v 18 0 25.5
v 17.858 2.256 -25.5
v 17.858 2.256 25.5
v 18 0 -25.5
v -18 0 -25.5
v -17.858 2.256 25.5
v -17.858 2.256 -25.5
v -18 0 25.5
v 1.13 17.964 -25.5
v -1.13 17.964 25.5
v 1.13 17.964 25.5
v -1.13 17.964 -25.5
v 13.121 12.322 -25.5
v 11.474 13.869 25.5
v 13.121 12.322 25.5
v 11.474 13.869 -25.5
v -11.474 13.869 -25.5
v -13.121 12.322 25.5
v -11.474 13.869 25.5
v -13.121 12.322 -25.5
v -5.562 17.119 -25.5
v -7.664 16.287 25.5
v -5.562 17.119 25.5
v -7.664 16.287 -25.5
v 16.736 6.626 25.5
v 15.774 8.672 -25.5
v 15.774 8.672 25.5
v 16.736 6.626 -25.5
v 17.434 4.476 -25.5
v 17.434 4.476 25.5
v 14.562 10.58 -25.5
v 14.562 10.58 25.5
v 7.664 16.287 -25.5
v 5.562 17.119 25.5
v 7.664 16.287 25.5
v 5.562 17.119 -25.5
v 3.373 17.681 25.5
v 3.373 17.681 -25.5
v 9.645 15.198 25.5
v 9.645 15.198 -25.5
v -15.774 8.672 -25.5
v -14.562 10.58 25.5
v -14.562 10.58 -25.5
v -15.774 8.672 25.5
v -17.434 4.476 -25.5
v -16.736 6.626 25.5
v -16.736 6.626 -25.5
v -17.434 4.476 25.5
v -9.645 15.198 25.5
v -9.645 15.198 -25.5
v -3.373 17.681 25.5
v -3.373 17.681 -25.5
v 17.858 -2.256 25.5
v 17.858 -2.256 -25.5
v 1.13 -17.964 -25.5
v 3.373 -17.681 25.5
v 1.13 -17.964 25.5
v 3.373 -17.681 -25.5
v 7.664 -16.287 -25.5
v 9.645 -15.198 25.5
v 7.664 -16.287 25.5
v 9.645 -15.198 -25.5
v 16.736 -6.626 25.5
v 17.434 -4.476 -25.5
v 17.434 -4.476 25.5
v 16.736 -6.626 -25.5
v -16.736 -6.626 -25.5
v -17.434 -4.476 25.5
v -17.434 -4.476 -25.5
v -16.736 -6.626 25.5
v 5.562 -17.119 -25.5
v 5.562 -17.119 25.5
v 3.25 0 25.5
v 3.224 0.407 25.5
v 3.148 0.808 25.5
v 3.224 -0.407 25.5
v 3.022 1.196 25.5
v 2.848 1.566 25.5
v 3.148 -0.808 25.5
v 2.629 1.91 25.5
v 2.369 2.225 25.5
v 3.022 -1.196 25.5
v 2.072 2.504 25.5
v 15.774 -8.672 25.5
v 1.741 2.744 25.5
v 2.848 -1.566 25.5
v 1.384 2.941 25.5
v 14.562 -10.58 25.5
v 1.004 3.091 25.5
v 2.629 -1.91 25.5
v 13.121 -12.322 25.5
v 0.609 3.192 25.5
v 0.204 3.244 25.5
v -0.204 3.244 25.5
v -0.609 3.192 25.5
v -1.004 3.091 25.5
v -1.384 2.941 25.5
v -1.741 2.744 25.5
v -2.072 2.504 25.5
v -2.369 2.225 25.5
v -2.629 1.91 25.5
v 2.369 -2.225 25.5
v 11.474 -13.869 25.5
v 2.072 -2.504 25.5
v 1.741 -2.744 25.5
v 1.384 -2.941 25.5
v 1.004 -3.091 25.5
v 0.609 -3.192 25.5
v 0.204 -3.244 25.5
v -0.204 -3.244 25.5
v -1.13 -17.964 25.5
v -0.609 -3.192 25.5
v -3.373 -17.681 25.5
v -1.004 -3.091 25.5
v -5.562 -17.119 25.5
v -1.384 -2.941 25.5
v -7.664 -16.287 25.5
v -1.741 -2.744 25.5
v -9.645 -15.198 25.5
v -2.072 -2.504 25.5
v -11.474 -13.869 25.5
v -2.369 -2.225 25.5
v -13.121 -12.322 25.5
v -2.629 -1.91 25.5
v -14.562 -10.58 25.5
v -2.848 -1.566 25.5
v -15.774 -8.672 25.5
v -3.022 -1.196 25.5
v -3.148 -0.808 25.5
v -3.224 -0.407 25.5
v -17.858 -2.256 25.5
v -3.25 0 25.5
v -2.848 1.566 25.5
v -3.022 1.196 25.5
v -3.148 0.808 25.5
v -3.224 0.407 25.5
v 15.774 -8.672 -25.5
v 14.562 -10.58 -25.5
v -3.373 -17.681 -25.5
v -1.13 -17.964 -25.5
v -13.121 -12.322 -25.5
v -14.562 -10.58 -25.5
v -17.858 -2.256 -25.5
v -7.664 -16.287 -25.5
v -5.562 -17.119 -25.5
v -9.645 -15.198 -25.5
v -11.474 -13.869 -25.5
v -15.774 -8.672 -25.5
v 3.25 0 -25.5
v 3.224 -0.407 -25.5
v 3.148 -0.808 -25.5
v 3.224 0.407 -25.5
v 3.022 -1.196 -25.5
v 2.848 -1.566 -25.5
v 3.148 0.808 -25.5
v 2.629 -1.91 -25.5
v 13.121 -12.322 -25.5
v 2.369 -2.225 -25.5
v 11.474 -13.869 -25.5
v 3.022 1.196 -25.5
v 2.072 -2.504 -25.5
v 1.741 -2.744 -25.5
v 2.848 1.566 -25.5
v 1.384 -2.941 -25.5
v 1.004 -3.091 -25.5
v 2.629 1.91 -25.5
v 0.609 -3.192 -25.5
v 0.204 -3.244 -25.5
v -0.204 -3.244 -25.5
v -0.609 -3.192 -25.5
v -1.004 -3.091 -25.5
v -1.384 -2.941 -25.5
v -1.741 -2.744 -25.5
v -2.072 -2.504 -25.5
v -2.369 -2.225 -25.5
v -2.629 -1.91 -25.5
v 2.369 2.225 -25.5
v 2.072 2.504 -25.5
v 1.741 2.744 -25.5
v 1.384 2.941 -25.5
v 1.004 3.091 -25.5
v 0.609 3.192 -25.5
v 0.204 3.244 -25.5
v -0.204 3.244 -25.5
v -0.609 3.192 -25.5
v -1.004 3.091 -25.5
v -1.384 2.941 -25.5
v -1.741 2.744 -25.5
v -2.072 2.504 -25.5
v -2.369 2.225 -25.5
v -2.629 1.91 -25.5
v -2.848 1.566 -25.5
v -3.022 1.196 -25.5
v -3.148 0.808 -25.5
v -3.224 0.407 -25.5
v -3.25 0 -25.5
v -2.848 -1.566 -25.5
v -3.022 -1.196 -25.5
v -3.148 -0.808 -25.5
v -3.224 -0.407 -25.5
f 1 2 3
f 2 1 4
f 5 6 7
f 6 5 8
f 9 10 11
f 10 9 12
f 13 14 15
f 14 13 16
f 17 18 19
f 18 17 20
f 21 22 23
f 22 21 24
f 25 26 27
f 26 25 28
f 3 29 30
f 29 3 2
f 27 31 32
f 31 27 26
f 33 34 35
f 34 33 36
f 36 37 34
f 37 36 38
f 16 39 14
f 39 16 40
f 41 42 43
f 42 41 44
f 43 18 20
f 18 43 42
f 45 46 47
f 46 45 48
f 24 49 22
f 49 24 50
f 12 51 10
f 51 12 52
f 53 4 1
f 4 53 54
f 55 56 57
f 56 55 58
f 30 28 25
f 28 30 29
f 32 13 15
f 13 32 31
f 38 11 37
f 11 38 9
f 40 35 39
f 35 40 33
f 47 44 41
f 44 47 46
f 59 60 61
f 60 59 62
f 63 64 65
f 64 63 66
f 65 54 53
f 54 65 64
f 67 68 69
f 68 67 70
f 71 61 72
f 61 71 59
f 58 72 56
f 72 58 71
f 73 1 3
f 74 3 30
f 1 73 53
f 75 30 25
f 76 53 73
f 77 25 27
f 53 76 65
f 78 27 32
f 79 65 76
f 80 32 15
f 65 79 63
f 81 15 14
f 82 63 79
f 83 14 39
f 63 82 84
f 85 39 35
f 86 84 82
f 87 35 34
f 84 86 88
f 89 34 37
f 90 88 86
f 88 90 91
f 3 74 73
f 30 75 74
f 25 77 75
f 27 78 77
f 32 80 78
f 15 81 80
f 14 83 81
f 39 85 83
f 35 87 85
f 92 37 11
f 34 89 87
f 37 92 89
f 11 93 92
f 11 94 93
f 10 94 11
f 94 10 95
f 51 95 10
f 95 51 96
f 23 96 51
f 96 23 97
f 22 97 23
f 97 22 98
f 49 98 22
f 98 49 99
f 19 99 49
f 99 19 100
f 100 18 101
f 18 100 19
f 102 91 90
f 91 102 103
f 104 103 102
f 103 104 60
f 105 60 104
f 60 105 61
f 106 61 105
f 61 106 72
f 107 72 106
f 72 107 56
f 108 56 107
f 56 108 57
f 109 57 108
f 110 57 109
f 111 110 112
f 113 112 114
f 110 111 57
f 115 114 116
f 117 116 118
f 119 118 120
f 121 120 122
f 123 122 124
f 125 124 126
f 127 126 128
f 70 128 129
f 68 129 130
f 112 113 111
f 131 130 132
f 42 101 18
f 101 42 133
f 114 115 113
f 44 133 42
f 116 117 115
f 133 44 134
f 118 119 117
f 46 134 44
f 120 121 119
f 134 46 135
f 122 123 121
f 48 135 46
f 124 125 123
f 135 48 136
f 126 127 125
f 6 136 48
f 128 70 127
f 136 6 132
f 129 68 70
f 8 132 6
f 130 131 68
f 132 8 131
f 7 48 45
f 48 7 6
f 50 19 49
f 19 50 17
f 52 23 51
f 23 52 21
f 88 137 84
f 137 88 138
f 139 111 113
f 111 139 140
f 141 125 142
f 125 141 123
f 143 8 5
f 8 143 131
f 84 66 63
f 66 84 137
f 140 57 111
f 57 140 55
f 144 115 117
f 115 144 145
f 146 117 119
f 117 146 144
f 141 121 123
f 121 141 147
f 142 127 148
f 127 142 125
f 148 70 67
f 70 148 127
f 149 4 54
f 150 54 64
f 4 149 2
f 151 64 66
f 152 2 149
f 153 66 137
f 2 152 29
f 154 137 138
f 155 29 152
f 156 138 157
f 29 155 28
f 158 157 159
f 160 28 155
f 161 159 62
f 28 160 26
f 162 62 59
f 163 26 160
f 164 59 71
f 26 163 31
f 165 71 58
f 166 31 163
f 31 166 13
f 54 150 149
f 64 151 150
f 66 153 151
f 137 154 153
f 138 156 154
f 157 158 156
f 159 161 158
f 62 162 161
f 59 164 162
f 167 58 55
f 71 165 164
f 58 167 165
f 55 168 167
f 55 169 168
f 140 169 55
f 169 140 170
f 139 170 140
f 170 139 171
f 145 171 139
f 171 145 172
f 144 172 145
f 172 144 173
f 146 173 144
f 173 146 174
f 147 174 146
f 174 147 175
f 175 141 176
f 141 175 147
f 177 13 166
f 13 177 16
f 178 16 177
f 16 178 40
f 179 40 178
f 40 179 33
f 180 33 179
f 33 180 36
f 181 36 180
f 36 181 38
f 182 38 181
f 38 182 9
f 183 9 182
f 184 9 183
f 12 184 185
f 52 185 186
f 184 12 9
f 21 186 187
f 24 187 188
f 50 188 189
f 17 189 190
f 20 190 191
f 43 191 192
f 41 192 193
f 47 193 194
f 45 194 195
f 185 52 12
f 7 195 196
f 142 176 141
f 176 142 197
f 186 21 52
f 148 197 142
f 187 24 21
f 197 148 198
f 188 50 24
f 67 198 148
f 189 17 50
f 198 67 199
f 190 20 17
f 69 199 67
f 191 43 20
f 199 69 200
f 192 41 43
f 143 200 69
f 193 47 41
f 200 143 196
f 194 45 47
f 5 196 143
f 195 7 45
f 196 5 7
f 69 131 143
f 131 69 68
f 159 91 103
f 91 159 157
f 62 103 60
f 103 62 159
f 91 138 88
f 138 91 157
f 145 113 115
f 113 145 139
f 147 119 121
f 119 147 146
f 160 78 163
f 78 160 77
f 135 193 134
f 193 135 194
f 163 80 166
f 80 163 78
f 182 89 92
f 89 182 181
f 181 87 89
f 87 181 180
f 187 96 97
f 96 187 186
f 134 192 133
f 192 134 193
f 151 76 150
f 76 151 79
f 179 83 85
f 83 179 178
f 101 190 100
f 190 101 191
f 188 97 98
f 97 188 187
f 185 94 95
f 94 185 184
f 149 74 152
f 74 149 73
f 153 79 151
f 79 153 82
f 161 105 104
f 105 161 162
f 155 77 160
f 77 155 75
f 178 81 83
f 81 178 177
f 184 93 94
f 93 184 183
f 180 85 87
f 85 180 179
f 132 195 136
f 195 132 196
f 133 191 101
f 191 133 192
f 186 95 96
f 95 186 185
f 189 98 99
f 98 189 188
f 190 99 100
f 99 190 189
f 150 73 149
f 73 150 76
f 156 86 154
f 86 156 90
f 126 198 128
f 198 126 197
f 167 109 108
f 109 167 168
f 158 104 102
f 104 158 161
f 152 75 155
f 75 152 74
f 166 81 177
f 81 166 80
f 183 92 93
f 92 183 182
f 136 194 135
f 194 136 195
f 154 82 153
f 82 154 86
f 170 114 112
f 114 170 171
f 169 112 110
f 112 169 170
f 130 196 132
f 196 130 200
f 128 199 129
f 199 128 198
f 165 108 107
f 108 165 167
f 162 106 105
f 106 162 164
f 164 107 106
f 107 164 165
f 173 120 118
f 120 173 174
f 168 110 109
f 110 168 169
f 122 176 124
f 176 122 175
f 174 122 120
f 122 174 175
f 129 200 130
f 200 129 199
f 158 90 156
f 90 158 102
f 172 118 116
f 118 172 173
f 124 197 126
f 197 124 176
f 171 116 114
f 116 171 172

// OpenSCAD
$fn = 50;


difference() {
	union() {
		translate(v = [0, 0, -25.5000000000]) {
			cylinder(h = 51, r = 18.0000000000);
		}
	}
	union() {
		translate(v = [0, 0, -100.0000000000]) {
			cylinder(h = 200, r = 3.2500000000);
		}
	}
}
